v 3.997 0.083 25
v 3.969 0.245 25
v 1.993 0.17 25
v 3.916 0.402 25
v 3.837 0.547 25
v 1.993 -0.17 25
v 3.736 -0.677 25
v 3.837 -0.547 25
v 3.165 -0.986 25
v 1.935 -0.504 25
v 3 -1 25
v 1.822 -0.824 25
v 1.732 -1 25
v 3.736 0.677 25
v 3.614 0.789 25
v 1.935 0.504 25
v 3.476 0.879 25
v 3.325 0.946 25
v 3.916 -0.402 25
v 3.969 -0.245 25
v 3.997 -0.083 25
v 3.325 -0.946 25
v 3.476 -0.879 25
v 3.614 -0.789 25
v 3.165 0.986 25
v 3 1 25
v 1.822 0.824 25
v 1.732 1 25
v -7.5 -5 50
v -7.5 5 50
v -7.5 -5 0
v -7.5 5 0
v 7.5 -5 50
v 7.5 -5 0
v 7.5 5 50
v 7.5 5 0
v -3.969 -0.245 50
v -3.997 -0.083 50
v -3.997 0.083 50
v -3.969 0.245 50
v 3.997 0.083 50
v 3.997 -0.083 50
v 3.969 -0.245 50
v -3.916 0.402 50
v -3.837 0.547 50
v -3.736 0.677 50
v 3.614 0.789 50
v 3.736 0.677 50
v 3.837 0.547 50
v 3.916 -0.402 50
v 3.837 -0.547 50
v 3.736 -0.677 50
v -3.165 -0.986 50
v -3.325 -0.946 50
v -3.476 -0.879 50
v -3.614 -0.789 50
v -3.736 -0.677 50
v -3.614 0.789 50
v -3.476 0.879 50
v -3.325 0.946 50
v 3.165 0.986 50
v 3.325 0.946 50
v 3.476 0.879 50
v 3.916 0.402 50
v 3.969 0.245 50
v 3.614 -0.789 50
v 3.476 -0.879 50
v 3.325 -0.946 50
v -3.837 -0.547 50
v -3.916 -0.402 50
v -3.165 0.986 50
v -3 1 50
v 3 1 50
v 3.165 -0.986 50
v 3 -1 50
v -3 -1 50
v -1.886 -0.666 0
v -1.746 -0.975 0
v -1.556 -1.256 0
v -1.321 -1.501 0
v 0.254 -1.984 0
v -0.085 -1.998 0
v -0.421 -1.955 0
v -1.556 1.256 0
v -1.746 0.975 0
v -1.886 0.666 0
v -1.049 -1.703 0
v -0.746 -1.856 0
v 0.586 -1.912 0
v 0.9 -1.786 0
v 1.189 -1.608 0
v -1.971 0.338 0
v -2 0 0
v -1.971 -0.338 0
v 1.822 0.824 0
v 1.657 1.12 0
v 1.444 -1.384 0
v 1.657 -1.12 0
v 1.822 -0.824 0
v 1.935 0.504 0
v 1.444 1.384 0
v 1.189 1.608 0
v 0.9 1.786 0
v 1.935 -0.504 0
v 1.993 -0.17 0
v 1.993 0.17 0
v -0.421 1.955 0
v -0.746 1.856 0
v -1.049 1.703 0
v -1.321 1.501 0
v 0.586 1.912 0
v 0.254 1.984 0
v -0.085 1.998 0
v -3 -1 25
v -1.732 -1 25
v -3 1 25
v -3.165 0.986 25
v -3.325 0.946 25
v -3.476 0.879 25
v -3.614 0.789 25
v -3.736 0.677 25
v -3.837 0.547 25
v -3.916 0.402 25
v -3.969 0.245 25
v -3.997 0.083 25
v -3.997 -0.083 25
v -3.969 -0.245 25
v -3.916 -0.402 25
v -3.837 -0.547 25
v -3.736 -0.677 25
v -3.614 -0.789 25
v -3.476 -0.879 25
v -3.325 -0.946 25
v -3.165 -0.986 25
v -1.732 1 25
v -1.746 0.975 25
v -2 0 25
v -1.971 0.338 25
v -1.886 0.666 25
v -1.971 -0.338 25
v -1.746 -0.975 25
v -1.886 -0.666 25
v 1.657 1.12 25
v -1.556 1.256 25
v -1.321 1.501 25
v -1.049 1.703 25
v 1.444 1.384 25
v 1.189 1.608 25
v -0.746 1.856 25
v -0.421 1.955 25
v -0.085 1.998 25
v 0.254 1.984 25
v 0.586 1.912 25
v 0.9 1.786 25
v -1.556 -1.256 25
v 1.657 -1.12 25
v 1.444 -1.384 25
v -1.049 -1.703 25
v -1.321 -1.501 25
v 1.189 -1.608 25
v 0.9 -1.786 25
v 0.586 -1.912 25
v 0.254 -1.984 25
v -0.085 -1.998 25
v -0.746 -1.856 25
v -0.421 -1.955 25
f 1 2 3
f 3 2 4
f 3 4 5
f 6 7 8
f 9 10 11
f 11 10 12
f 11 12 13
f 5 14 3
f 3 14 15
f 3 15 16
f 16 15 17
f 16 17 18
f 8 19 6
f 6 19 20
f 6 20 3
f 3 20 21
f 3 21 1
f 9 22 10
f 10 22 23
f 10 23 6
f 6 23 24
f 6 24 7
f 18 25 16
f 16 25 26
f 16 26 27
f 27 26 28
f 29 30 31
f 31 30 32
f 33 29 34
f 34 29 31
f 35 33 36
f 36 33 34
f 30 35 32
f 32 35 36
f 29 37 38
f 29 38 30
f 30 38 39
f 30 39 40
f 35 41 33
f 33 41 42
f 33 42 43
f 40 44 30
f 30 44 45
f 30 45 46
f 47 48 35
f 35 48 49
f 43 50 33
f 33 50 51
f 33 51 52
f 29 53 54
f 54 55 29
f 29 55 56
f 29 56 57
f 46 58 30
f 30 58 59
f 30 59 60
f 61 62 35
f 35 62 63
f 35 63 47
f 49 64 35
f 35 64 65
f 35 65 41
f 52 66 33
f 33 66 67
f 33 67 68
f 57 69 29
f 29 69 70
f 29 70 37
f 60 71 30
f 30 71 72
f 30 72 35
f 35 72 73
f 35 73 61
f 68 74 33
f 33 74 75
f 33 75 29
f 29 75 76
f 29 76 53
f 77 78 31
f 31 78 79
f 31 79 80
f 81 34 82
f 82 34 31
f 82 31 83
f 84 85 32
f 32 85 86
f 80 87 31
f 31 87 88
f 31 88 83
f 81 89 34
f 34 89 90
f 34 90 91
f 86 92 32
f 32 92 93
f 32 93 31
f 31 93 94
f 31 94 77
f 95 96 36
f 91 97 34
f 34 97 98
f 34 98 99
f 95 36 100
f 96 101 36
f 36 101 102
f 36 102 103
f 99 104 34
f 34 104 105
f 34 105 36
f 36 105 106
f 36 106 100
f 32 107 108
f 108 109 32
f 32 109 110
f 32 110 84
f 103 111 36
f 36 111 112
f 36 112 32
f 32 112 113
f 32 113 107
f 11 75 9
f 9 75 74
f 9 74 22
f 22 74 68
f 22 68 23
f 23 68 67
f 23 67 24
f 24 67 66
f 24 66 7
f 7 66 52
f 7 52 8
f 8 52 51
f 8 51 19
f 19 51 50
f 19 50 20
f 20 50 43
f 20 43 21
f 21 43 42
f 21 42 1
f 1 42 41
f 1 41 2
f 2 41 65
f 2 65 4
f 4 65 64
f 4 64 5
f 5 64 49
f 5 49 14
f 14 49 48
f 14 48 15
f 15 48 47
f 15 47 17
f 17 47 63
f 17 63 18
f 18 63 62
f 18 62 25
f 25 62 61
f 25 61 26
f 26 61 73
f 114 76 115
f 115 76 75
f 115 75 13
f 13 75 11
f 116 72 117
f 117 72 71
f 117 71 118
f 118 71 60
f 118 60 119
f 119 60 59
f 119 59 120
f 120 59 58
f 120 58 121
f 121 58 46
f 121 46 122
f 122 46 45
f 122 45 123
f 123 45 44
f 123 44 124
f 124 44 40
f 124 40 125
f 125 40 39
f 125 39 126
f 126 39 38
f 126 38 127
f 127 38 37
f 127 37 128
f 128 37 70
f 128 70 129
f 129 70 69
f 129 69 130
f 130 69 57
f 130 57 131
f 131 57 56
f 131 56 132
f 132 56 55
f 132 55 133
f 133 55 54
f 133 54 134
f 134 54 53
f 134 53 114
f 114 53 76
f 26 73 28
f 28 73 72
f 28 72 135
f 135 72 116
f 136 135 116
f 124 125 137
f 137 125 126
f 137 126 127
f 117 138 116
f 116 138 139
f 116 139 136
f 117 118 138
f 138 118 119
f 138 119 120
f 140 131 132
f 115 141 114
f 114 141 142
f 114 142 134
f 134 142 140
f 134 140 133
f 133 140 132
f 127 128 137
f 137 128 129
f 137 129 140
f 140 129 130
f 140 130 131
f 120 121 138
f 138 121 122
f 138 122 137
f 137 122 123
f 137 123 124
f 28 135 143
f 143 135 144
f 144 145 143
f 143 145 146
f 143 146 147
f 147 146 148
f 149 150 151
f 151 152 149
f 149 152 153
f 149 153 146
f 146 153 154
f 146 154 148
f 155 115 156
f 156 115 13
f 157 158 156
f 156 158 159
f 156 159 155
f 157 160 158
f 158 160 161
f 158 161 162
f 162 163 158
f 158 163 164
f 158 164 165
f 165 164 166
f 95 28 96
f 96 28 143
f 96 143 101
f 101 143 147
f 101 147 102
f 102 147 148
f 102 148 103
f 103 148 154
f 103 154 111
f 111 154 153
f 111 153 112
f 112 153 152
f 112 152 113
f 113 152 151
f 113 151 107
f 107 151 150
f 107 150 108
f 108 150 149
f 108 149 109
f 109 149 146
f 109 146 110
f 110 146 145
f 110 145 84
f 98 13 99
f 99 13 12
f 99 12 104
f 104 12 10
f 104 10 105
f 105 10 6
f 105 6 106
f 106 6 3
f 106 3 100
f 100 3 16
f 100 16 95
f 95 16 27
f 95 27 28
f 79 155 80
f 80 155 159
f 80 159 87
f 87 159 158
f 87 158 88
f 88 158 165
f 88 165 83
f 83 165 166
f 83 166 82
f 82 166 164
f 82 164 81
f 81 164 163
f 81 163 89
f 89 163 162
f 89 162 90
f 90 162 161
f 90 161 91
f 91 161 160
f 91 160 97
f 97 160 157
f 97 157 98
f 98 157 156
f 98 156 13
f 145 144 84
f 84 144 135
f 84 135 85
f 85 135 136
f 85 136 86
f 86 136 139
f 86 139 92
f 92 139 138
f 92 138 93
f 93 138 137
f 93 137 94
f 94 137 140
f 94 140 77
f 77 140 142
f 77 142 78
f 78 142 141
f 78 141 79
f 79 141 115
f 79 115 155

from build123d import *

# Parameters (mm, degrees)
SKETCH1_W           = 15
SKETCH1_H           = 10
BOSS_EXTRUDE1_DEPTH = 50
CUT_EXTRUDE1_DEPTH  = 25
SKETCH3_R           = 2
CUT_EXTRUDE2_DEPTH  = 25


with BuildPart() as part:
    # Sketch1 → Boss-Extrude1 (new body)
    with BuildSketch(Plane.XY):
        Rectangle(SKETCH1_W, SKETCH1_H)
    extrude(amount=BOSS_EXTRUDE1_DEPTH)

    # Sketch2 → Cut-Extrude1 (cut)
    with BuildSketch(Plane.XY.offset(50)):
        with BuildLine():
            Line((-3, 1), (3, 1))
            ThreePointArc((3, 1), (4, 0), (3, -1))
            Line((3, -1), (-3, -1))
            ThreePointArc((-3, -1), (-4, 0), (-3, 1))
        make_face()
    extrude(amount=-CUT_EXTRUDE1_DEPTH, mode=Mode.SUBTRACT)

    # Sketch3 → Cut-Extrude2 (cut)
    with BuildSketch(Plane(origin=(0, 0, 0), x_dir=(-1, 0, 0), z_dir=(0, 0, -1))):
        Circle(SKETCH3_R)
    extrude(amount=-CUT_EXTRUDE2_DEPTH, mode=Mode.SUBTRACT)


solid = part.part
